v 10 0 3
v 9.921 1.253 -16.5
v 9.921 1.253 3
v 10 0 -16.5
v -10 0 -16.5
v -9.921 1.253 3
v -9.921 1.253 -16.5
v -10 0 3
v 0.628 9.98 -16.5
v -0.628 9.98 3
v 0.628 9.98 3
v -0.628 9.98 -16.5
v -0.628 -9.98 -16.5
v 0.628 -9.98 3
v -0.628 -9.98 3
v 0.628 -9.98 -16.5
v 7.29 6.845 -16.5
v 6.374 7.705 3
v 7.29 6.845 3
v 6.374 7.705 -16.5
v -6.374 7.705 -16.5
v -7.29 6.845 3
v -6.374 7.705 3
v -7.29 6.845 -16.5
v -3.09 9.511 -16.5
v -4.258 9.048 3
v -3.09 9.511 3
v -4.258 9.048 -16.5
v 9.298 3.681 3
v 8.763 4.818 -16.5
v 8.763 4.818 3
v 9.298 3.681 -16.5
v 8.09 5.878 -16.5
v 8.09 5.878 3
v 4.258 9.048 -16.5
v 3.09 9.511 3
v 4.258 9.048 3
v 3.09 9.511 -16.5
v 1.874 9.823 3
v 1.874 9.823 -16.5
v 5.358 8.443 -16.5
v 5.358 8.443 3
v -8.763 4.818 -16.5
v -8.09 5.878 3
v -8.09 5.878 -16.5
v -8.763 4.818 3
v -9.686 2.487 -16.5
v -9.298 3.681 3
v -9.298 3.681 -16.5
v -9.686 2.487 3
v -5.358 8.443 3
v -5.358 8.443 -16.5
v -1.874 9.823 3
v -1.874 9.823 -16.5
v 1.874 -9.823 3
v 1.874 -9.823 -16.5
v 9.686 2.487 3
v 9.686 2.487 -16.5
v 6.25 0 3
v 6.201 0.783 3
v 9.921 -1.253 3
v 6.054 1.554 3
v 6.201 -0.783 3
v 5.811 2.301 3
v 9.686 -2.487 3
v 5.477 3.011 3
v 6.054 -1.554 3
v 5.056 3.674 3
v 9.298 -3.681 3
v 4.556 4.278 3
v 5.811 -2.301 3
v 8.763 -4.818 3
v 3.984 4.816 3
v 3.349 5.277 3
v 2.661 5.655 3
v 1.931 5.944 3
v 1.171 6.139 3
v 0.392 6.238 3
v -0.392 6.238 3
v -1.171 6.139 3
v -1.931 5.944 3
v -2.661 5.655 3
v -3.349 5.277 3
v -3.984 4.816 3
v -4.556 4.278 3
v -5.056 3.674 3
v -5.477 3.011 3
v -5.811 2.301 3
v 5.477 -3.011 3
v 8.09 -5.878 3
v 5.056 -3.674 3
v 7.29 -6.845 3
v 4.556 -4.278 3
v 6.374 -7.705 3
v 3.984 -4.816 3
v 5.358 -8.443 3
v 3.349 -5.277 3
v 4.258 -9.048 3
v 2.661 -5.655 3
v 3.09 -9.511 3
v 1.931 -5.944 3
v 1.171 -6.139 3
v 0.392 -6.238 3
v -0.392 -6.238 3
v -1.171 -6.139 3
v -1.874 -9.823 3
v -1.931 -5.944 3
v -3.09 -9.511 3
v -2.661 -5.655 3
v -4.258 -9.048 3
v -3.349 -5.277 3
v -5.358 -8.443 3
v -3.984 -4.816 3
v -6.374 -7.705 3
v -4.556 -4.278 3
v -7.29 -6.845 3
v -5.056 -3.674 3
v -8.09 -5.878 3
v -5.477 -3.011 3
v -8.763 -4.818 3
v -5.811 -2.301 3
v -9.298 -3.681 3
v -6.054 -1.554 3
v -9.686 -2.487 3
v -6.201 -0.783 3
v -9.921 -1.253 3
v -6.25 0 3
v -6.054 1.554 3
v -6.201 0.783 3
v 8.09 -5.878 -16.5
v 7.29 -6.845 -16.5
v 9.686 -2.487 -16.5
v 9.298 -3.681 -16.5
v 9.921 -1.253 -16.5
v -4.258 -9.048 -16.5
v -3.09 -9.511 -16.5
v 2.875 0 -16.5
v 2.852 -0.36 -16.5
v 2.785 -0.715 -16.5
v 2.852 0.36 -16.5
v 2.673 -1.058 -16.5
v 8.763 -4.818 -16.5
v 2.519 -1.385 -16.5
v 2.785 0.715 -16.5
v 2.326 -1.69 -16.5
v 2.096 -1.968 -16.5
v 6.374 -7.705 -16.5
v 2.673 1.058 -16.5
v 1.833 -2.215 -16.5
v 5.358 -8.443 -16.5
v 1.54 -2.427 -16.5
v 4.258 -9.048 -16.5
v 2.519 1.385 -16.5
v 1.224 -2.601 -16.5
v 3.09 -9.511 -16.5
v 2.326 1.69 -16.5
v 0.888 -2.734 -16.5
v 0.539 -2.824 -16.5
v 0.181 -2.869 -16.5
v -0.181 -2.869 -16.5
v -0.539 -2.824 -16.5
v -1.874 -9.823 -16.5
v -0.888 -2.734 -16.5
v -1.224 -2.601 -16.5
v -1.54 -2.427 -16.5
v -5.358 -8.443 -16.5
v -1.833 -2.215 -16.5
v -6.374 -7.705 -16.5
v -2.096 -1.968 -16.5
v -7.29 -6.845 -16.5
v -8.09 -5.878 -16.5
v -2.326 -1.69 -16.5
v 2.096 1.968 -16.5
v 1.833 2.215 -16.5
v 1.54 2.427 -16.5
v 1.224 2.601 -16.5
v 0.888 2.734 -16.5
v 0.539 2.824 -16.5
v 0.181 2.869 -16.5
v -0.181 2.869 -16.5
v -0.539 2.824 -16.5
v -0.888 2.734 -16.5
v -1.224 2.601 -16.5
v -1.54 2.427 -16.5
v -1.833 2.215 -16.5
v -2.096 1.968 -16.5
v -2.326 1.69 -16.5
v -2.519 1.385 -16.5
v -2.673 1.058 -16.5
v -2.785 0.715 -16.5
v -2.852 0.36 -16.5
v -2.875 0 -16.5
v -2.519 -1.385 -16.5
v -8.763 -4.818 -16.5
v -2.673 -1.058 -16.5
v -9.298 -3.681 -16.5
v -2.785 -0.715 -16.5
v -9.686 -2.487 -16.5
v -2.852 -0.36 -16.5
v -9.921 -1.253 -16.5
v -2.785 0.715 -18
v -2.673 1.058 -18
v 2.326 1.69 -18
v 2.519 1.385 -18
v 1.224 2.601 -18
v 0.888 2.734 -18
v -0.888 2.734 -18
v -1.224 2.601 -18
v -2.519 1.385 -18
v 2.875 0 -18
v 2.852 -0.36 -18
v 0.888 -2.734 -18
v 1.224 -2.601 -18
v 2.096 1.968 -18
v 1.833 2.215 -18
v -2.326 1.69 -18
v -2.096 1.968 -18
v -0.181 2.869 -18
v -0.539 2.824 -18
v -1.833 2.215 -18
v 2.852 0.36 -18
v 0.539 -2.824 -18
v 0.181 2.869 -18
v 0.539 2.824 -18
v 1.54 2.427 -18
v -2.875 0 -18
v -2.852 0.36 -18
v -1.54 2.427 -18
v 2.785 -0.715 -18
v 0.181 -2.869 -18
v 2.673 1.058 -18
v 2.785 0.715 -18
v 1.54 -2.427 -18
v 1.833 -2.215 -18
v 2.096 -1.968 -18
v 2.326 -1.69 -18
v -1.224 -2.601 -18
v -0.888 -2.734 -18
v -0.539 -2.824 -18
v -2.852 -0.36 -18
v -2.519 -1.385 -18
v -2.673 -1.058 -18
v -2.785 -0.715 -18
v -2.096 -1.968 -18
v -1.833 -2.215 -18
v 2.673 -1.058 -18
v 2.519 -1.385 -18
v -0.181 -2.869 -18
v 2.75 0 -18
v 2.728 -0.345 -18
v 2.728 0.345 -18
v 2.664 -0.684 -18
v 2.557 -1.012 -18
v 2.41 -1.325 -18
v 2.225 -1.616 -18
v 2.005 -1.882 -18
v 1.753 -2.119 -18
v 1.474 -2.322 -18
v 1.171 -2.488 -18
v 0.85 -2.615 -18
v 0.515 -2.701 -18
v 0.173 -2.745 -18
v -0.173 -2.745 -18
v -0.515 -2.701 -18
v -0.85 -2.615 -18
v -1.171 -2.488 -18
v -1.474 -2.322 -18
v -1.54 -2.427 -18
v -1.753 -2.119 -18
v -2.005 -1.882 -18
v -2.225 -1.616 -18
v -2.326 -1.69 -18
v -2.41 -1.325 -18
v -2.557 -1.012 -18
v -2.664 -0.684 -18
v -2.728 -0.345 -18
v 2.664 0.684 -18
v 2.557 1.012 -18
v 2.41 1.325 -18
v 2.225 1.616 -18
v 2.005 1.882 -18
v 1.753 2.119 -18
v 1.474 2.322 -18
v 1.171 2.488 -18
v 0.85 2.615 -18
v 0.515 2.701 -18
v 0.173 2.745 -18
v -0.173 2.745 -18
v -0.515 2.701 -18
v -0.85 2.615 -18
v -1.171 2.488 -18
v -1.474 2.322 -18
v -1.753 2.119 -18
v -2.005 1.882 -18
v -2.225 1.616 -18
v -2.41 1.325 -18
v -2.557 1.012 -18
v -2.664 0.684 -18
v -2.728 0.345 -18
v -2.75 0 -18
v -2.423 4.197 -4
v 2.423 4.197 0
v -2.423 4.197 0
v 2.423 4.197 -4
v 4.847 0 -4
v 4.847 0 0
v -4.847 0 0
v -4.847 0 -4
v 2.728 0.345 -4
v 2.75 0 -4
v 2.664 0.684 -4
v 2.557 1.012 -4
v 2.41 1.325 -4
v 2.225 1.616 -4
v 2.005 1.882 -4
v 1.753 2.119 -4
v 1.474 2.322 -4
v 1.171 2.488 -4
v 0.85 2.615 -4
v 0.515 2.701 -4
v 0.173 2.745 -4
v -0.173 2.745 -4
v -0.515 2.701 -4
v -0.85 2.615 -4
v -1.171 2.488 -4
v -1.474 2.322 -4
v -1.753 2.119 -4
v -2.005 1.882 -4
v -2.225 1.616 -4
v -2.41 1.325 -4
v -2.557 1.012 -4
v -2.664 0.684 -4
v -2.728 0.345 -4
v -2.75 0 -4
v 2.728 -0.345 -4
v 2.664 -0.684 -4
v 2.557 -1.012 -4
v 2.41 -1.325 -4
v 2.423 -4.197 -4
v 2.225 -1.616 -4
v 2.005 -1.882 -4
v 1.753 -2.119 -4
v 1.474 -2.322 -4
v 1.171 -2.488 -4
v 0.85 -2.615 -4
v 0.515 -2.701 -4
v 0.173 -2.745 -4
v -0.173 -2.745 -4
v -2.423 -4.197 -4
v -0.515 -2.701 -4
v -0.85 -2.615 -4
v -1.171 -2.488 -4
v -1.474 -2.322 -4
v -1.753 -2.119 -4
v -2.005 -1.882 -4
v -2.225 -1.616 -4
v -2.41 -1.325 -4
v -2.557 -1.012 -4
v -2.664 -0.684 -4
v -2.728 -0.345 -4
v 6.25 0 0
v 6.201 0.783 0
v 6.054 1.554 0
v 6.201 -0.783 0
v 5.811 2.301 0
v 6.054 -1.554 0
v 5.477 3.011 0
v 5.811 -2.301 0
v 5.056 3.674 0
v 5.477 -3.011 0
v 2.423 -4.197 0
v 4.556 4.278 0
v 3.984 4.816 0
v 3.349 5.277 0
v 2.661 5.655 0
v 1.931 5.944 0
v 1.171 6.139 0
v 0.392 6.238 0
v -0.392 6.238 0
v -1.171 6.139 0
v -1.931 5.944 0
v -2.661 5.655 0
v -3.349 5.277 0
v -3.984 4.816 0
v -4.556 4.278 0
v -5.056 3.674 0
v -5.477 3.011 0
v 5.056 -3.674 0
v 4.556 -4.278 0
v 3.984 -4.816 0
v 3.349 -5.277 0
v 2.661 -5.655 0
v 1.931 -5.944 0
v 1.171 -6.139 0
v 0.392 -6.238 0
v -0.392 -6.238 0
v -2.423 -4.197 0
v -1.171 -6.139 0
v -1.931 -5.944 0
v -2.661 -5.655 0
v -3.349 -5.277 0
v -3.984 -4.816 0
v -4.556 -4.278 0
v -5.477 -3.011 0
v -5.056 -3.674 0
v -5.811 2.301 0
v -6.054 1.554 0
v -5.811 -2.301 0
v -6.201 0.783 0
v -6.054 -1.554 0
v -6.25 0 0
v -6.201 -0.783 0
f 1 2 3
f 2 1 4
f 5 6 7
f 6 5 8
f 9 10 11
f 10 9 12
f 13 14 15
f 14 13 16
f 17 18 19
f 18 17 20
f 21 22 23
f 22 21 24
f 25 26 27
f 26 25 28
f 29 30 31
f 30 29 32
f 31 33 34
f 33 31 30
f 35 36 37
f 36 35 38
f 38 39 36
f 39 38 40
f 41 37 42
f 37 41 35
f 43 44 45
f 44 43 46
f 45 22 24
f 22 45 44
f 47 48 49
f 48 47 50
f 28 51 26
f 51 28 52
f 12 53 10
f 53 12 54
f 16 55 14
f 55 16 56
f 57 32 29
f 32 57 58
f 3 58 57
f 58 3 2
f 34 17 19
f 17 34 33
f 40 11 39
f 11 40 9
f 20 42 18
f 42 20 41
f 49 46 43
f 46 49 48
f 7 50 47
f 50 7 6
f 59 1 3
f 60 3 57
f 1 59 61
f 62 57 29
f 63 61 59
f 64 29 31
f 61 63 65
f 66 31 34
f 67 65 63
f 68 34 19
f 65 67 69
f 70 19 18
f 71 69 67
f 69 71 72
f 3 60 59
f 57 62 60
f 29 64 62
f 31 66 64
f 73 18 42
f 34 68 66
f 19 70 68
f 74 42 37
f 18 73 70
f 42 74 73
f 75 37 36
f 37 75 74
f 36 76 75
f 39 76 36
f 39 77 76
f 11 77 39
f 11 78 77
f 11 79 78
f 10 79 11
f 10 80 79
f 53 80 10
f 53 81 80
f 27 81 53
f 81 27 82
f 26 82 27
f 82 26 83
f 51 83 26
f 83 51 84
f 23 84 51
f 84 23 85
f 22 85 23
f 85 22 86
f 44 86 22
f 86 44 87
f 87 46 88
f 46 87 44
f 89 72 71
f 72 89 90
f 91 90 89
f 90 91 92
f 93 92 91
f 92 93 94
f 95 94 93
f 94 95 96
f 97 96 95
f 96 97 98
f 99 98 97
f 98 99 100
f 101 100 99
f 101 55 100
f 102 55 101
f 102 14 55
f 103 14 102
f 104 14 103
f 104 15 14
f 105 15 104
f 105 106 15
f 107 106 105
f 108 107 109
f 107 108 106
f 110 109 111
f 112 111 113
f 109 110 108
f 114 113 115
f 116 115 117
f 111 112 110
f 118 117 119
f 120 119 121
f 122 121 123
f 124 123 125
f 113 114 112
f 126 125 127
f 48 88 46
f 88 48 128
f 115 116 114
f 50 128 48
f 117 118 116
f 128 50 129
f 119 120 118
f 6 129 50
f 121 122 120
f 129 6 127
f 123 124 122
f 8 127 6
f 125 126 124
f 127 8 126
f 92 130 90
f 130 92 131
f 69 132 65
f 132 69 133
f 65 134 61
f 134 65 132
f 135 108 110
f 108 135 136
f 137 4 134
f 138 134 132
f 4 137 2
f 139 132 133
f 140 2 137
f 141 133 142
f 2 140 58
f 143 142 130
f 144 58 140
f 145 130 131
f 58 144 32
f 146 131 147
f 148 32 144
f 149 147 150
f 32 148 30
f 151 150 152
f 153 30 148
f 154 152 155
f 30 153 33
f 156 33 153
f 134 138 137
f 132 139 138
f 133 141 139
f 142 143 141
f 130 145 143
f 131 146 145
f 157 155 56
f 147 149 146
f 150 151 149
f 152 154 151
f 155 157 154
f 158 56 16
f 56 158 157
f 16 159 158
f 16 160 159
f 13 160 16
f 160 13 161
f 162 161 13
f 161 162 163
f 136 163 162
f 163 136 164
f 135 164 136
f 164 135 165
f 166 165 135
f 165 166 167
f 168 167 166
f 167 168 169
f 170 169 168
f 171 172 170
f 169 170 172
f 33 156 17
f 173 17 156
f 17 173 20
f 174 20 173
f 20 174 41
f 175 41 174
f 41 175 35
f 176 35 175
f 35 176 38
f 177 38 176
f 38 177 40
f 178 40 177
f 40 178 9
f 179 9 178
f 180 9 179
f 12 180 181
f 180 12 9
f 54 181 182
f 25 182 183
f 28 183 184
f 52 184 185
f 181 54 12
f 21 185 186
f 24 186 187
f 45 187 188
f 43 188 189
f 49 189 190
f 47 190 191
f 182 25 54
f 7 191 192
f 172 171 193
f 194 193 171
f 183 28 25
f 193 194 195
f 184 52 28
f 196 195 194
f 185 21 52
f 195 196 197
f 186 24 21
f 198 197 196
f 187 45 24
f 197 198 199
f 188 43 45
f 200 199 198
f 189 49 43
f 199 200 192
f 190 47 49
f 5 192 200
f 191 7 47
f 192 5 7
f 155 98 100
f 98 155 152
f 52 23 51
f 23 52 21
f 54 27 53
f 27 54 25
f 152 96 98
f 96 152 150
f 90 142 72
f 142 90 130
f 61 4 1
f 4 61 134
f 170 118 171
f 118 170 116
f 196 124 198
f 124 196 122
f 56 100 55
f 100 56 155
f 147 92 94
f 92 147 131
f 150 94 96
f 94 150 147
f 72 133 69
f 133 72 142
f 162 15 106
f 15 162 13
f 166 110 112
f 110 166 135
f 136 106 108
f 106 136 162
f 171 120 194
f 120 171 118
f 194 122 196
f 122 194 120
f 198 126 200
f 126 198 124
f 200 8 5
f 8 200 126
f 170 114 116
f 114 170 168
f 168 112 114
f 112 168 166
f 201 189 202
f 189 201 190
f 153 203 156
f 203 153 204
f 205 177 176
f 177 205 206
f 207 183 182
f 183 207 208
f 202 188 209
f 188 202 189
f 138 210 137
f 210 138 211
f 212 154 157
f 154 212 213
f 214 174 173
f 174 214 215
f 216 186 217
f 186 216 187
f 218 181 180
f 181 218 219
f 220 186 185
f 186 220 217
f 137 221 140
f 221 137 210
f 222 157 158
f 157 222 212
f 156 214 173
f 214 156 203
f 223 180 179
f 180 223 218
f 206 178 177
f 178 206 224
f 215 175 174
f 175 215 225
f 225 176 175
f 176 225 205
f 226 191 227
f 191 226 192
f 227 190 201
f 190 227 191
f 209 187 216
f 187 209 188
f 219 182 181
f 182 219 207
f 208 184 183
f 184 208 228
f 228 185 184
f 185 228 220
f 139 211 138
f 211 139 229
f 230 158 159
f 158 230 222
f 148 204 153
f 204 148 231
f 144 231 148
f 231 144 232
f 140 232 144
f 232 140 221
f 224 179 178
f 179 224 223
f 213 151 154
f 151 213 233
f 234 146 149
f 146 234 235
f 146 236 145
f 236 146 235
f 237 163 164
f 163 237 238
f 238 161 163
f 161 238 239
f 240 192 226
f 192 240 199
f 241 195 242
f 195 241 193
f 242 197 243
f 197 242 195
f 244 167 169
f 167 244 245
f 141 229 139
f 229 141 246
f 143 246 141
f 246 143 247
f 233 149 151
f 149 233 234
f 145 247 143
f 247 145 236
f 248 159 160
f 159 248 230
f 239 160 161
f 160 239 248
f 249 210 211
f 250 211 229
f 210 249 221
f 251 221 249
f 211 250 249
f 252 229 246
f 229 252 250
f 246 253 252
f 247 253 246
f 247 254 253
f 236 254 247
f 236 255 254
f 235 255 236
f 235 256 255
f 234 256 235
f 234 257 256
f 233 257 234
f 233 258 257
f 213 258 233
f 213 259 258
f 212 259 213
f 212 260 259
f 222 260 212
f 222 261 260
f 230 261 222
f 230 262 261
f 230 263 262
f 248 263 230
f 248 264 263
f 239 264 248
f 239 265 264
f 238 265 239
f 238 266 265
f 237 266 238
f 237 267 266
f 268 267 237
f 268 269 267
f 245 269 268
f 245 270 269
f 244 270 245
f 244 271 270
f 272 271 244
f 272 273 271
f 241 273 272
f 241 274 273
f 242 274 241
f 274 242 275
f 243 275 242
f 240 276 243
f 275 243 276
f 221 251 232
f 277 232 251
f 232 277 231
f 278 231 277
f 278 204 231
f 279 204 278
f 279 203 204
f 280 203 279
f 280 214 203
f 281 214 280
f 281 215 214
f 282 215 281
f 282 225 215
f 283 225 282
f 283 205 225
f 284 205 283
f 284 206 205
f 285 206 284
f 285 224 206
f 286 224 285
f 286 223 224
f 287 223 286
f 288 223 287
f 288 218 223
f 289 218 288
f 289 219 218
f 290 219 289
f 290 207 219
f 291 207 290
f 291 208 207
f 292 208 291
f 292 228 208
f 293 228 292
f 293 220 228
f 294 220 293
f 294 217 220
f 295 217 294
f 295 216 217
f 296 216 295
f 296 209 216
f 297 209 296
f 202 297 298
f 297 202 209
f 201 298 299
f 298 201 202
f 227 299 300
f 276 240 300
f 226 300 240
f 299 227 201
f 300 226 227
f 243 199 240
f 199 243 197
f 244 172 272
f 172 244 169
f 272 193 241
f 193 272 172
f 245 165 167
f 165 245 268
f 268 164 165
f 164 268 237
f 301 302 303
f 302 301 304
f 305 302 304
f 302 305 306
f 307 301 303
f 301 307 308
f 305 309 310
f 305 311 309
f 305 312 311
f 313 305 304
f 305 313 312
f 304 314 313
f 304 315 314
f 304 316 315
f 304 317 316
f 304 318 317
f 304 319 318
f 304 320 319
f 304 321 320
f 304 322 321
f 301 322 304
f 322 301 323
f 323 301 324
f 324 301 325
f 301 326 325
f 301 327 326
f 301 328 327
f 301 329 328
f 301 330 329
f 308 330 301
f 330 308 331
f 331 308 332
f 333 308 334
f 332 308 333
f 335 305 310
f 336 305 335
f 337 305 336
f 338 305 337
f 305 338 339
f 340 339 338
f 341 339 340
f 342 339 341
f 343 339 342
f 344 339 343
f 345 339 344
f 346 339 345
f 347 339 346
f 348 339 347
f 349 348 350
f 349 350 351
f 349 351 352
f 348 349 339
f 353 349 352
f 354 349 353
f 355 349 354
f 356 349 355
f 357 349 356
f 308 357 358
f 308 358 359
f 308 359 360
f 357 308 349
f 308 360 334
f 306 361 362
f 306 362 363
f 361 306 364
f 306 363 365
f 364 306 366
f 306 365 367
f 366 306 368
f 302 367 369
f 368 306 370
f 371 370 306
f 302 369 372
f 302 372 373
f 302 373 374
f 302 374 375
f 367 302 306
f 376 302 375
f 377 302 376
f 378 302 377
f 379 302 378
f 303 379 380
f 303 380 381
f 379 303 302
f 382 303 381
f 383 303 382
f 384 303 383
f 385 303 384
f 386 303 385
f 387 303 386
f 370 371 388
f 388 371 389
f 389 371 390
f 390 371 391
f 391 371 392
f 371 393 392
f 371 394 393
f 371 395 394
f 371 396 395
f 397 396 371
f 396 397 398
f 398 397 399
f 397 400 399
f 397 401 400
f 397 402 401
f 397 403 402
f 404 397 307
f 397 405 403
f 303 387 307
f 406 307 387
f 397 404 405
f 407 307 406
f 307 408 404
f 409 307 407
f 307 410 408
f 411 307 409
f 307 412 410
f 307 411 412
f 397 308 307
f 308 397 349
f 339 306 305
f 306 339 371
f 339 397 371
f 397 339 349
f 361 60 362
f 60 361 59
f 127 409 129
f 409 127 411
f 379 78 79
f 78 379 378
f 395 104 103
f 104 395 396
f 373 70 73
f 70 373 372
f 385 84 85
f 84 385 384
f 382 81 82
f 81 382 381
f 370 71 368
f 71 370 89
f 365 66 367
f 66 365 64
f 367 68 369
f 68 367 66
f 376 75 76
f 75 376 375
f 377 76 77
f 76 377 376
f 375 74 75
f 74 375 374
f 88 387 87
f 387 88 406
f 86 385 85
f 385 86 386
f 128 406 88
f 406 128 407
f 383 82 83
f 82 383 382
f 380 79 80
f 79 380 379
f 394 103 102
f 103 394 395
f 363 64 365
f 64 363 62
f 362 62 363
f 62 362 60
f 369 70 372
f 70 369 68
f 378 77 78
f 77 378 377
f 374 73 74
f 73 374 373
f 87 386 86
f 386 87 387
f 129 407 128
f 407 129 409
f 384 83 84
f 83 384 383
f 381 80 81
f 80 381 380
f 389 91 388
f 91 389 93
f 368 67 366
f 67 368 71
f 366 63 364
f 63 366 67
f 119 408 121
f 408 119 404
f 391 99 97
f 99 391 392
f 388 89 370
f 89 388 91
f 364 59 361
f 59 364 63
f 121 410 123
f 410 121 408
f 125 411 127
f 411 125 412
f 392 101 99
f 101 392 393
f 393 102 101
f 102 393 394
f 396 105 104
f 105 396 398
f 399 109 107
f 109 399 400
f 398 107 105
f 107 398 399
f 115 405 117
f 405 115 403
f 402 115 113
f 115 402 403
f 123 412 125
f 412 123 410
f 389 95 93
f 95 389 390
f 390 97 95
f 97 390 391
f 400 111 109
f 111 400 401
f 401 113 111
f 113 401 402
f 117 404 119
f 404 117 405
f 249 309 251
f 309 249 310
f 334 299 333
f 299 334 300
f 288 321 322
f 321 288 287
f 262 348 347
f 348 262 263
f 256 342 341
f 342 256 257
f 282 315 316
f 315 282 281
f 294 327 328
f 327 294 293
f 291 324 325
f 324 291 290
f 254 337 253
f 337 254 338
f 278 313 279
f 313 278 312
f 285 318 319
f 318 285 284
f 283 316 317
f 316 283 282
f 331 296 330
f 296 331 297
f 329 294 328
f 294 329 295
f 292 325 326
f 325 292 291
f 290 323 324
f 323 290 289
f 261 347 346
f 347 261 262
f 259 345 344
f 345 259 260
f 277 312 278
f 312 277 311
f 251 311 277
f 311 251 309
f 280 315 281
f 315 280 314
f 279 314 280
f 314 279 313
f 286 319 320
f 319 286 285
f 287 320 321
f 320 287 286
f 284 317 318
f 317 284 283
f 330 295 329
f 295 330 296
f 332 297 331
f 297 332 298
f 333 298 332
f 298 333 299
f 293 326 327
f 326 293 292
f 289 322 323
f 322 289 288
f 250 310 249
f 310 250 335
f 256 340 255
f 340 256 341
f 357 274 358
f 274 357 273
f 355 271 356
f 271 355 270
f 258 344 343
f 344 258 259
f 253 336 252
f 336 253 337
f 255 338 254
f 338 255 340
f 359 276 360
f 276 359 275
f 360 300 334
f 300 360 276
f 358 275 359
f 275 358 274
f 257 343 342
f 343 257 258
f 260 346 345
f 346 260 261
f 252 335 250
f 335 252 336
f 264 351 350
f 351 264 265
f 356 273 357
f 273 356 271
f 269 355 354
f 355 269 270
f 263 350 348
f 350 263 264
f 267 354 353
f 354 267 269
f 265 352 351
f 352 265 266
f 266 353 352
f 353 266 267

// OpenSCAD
$fn = 50;


difference() {
	union() {
		translate(v = [0, 0, -16.5000000000]) {
			cylinder(h = 19.5000000000, r = 10.0000000000);
		}
		#translate(v = [0, 0, -18.0000000000]) {
			cylinder(h = 18, r = 2.8750000000);
		}
	}
	union() {
		translate(v = [0, 0, 0]) {
			rotate(a = [0, 0, 0]) {
				difference() {
					union() {
						translate(v = [0, 0, -4]) {
							linear_extrude(height = 4) {
								polygon(points = [[4.8468000000, 0.0000000000], [2.4234000000, 4.1974519271], [-2.4234000000, 4.1974519271], [-4.8468000000, 0.0000000000], [-2.4234000000, -4.1974519271], [2.4234000000, -4.1974519271]]);
							}
						}
					}
					union();
				}
			}
		}
		#cylinder(h = 3, r = 6.2500000000);
		#translate(v = [0, 0, -100.0000000000]) {
			cylinder(h = 200, r = 2.7500000000);
		}
	}
}
